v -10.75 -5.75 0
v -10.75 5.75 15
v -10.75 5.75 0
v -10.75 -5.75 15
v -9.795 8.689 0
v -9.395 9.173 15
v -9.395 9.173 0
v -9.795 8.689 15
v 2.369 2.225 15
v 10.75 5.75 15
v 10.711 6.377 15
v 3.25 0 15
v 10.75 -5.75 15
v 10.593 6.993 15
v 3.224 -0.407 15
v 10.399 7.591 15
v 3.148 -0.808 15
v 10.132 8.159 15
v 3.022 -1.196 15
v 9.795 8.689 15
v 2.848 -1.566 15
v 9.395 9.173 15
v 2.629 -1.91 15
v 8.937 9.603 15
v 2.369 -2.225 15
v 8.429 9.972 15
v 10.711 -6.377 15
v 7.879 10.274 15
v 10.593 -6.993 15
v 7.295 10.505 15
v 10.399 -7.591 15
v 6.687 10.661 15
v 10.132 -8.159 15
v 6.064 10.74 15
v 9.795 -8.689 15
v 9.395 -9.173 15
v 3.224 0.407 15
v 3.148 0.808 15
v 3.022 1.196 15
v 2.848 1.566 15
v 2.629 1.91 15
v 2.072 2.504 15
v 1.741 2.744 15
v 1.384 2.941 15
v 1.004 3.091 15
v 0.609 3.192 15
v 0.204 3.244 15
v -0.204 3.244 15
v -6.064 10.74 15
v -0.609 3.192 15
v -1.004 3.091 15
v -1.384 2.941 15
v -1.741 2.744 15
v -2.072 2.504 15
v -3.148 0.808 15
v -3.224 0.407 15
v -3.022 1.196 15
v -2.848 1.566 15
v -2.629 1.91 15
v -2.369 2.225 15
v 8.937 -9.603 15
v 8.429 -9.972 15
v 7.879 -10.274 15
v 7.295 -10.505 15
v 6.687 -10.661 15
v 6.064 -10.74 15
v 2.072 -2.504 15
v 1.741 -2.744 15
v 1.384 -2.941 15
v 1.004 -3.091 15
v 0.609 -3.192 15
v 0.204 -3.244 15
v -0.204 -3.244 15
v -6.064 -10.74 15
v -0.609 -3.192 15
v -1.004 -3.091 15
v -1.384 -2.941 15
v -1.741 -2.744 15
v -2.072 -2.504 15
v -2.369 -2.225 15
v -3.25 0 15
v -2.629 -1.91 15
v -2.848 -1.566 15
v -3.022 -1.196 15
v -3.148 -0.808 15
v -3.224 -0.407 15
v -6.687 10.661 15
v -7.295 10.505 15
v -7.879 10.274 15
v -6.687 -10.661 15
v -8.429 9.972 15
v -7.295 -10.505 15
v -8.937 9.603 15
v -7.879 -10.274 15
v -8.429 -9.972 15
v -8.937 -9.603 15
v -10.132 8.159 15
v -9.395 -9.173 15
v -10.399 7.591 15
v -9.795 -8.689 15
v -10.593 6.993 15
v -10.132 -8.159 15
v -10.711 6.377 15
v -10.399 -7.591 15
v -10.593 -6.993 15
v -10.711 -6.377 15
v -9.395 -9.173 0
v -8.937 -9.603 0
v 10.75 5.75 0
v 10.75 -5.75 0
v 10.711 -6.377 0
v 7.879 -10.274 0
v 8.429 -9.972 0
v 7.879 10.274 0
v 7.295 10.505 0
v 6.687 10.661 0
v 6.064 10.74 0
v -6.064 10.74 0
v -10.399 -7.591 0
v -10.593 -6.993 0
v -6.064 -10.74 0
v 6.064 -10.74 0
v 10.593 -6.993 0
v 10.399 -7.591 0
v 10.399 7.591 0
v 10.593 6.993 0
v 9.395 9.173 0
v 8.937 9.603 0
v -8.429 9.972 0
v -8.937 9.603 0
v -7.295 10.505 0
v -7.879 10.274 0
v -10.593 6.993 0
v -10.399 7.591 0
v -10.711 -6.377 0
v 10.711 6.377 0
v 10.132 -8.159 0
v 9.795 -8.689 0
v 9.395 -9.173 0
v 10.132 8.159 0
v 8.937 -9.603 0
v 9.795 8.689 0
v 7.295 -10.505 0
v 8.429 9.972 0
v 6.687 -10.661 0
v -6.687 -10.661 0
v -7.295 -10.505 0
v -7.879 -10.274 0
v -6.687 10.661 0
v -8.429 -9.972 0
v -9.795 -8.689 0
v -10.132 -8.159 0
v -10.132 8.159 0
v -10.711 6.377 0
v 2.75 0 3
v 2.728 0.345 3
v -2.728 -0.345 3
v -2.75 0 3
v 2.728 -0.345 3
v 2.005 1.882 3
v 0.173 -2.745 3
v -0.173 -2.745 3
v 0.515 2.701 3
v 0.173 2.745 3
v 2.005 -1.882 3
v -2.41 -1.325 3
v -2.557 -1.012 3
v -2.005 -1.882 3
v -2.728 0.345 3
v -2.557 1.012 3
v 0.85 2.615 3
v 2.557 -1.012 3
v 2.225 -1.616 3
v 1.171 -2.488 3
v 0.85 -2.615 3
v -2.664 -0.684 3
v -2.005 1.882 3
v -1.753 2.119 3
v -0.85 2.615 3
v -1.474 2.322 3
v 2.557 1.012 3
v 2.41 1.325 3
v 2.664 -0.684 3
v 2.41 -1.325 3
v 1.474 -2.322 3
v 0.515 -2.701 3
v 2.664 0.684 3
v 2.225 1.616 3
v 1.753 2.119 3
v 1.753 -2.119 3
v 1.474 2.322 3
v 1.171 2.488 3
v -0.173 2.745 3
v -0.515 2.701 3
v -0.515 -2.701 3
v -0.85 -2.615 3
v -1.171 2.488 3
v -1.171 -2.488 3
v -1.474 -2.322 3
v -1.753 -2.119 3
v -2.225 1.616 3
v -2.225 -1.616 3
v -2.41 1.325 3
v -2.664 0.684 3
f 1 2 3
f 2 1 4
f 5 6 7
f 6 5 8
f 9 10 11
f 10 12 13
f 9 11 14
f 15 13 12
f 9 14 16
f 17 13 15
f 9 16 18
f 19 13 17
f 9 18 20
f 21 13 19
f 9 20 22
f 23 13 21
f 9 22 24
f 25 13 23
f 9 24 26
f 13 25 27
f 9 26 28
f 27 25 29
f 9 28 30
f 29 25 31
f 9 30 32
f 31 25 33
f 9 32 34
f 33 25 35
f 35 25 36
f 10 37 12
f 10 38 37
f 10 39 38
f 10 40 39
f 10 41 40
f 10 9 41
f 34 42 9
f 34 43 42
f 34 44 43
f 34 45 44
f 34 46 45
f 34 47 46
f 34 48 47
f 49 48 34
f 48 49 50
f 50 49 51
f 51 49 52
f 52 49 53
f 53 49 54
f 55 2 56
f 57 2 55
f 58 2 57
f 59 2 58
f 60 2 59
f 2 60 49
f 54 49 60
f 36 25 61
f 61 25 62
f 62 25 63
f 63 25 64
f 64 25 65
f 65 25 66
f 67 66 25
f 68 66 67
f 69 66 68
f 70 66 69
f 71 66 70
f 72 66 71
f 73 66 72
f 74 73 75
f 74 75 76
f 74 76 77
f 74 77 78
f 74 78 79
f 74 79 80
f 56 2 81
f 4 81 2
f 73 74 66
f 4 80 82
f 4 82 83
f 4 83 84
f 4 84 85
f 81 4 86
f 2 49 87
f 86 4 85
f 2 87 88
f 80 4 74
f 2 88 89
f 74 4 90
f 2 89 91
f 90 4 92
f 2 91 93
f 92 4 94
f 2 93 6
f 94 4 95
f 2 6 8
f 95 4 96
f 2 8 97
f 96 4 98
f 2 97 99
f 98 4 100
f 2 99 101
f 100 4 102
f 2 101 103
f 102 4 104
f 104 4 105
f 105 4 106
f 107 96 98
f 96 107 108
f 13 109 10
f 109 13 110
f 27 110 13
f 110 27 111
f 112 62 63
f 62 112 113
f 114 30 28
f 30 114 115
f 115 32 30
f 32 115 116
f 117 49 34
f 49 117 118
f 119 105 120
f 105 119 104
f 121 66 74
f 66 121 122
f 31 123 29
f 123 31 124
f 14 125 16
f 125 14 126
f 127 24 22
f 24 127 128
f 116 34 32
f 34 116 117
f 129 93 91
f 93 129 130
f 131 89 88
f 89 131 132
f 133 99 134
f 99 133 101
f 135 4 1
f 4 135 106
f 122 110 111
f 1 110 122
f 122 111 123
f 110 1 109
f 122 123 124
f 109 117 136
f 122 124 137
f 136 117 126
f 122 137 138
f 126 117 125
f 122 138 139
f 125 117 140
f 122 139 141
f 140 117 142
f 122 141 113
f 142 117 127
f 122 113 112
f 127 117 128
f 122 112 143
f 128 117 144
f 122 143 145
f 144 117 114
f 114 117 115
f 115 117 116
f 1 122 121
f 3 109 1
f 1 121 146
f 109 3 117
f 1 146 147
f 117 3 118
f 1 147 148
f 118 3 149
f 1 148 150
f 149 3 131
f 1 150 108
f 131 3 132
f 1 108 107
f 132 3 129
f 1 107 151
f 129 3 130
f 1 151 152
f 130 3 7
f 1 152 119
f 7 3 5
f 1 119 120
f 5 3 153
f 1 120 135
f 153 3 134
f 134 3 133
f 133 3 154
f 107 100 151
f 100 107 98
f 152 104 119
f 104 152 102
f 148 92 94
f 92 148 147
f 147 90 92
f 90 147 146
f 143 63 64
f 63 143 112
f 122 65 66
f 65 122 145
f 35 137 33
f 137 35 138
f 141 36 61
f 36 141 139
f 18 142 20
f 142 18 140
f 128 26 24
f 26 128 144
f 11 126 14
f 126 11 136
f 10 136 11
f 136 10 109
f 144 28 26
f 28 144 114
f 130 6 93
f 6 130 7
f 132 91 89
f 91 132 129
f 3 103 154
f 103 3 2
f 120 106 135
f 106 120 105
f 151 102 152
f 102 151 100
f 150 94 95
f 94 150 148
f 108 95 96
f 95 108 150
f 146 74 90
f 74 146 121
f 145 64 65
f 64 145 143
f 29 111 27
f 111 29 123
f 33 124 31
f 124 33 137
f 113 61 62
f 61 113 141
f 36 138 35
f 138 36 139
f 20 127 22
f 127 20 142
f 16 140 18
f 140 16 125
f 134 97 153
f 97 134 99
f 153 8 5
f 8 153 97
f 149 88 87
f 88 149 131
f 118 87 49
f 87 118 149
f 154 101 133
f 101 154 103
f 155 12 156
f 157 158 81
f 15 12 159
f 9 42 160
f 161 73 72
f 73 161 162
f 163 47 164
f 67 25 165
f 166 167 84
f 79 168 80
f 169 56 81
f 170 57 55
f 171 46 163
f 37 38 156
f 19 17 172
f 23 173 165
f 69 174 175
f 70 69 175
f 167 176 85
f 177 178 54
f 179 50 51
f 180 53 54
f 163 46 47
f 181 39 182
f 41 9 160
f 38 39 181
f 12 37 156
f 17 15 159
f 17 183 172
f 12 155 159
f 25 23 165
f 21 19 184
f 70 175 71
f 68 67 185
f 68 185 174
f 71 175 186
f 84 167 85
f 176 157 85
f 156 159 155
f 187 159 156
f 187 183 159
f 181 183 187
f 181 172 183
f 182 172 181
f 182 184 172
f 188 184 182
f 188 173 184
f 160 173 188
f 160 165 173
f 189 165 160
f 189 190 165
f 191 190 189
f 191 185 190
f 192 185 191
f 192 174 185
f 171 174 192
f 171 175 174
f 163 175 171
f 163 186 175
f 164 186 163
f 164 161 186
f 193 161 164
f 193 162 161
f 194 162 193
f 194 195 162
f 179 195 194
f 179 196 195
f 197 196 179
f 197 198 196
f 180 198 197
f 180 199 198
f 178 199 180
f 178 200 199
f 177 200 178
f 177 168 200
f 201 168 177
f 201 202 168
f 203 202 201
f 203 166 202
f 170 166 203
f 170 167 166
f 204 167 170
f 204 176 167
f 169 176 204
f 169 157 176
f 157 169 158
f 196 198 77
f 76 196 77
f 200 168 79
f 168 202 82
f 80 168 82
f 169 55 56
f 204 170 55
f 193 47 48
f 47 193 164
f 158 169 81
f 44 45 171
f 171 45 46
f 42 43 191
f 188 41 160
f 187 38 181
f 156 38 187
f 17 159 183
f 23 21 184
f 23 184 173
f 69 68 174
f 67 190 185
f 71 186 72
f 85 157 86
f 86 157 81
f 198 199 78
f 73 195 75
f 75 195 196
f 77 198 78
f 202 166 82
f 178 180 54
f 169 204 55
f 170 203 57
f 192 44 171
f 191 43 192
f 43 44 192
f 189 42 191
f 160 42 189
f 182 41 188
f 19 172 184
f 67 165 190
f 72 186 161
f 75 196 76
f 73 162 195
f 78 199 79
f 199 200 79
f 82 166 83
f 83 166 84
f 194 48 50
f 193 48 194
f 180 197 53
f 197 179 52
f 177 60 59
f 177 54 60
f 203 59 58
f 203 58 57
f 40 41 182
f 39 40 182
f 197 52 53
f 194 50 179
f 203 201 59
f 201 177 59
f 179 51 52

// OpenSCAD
$fn = 50;


difference() {
	union() {
		hull() {
			translate(v = [-5.7500000000, 5.7500000000, 0]) {
				cylinder(h = 15, r = 5);
			}
			translate(v = [5.7500000000, 5.7500000000, 0]) {
				cylinder(h = 15, r = 5);
			}
			translate(v = [-5.7500000000, -5.7500000000, 0]) {
				cylinder(h = 15, r = 5);
			}
			translate(v = [5.7500000000, -5.7500000000, 0]) {
				cylinder(h = 15, r = 5);
			}
		}
	}
	union() {
		#translate(v = [0, 0, 3.0000000000]) {
			cylinder(h = 12, r1 = 2.7500000000, r2 = 3.2500000000);
		}
	}
}
